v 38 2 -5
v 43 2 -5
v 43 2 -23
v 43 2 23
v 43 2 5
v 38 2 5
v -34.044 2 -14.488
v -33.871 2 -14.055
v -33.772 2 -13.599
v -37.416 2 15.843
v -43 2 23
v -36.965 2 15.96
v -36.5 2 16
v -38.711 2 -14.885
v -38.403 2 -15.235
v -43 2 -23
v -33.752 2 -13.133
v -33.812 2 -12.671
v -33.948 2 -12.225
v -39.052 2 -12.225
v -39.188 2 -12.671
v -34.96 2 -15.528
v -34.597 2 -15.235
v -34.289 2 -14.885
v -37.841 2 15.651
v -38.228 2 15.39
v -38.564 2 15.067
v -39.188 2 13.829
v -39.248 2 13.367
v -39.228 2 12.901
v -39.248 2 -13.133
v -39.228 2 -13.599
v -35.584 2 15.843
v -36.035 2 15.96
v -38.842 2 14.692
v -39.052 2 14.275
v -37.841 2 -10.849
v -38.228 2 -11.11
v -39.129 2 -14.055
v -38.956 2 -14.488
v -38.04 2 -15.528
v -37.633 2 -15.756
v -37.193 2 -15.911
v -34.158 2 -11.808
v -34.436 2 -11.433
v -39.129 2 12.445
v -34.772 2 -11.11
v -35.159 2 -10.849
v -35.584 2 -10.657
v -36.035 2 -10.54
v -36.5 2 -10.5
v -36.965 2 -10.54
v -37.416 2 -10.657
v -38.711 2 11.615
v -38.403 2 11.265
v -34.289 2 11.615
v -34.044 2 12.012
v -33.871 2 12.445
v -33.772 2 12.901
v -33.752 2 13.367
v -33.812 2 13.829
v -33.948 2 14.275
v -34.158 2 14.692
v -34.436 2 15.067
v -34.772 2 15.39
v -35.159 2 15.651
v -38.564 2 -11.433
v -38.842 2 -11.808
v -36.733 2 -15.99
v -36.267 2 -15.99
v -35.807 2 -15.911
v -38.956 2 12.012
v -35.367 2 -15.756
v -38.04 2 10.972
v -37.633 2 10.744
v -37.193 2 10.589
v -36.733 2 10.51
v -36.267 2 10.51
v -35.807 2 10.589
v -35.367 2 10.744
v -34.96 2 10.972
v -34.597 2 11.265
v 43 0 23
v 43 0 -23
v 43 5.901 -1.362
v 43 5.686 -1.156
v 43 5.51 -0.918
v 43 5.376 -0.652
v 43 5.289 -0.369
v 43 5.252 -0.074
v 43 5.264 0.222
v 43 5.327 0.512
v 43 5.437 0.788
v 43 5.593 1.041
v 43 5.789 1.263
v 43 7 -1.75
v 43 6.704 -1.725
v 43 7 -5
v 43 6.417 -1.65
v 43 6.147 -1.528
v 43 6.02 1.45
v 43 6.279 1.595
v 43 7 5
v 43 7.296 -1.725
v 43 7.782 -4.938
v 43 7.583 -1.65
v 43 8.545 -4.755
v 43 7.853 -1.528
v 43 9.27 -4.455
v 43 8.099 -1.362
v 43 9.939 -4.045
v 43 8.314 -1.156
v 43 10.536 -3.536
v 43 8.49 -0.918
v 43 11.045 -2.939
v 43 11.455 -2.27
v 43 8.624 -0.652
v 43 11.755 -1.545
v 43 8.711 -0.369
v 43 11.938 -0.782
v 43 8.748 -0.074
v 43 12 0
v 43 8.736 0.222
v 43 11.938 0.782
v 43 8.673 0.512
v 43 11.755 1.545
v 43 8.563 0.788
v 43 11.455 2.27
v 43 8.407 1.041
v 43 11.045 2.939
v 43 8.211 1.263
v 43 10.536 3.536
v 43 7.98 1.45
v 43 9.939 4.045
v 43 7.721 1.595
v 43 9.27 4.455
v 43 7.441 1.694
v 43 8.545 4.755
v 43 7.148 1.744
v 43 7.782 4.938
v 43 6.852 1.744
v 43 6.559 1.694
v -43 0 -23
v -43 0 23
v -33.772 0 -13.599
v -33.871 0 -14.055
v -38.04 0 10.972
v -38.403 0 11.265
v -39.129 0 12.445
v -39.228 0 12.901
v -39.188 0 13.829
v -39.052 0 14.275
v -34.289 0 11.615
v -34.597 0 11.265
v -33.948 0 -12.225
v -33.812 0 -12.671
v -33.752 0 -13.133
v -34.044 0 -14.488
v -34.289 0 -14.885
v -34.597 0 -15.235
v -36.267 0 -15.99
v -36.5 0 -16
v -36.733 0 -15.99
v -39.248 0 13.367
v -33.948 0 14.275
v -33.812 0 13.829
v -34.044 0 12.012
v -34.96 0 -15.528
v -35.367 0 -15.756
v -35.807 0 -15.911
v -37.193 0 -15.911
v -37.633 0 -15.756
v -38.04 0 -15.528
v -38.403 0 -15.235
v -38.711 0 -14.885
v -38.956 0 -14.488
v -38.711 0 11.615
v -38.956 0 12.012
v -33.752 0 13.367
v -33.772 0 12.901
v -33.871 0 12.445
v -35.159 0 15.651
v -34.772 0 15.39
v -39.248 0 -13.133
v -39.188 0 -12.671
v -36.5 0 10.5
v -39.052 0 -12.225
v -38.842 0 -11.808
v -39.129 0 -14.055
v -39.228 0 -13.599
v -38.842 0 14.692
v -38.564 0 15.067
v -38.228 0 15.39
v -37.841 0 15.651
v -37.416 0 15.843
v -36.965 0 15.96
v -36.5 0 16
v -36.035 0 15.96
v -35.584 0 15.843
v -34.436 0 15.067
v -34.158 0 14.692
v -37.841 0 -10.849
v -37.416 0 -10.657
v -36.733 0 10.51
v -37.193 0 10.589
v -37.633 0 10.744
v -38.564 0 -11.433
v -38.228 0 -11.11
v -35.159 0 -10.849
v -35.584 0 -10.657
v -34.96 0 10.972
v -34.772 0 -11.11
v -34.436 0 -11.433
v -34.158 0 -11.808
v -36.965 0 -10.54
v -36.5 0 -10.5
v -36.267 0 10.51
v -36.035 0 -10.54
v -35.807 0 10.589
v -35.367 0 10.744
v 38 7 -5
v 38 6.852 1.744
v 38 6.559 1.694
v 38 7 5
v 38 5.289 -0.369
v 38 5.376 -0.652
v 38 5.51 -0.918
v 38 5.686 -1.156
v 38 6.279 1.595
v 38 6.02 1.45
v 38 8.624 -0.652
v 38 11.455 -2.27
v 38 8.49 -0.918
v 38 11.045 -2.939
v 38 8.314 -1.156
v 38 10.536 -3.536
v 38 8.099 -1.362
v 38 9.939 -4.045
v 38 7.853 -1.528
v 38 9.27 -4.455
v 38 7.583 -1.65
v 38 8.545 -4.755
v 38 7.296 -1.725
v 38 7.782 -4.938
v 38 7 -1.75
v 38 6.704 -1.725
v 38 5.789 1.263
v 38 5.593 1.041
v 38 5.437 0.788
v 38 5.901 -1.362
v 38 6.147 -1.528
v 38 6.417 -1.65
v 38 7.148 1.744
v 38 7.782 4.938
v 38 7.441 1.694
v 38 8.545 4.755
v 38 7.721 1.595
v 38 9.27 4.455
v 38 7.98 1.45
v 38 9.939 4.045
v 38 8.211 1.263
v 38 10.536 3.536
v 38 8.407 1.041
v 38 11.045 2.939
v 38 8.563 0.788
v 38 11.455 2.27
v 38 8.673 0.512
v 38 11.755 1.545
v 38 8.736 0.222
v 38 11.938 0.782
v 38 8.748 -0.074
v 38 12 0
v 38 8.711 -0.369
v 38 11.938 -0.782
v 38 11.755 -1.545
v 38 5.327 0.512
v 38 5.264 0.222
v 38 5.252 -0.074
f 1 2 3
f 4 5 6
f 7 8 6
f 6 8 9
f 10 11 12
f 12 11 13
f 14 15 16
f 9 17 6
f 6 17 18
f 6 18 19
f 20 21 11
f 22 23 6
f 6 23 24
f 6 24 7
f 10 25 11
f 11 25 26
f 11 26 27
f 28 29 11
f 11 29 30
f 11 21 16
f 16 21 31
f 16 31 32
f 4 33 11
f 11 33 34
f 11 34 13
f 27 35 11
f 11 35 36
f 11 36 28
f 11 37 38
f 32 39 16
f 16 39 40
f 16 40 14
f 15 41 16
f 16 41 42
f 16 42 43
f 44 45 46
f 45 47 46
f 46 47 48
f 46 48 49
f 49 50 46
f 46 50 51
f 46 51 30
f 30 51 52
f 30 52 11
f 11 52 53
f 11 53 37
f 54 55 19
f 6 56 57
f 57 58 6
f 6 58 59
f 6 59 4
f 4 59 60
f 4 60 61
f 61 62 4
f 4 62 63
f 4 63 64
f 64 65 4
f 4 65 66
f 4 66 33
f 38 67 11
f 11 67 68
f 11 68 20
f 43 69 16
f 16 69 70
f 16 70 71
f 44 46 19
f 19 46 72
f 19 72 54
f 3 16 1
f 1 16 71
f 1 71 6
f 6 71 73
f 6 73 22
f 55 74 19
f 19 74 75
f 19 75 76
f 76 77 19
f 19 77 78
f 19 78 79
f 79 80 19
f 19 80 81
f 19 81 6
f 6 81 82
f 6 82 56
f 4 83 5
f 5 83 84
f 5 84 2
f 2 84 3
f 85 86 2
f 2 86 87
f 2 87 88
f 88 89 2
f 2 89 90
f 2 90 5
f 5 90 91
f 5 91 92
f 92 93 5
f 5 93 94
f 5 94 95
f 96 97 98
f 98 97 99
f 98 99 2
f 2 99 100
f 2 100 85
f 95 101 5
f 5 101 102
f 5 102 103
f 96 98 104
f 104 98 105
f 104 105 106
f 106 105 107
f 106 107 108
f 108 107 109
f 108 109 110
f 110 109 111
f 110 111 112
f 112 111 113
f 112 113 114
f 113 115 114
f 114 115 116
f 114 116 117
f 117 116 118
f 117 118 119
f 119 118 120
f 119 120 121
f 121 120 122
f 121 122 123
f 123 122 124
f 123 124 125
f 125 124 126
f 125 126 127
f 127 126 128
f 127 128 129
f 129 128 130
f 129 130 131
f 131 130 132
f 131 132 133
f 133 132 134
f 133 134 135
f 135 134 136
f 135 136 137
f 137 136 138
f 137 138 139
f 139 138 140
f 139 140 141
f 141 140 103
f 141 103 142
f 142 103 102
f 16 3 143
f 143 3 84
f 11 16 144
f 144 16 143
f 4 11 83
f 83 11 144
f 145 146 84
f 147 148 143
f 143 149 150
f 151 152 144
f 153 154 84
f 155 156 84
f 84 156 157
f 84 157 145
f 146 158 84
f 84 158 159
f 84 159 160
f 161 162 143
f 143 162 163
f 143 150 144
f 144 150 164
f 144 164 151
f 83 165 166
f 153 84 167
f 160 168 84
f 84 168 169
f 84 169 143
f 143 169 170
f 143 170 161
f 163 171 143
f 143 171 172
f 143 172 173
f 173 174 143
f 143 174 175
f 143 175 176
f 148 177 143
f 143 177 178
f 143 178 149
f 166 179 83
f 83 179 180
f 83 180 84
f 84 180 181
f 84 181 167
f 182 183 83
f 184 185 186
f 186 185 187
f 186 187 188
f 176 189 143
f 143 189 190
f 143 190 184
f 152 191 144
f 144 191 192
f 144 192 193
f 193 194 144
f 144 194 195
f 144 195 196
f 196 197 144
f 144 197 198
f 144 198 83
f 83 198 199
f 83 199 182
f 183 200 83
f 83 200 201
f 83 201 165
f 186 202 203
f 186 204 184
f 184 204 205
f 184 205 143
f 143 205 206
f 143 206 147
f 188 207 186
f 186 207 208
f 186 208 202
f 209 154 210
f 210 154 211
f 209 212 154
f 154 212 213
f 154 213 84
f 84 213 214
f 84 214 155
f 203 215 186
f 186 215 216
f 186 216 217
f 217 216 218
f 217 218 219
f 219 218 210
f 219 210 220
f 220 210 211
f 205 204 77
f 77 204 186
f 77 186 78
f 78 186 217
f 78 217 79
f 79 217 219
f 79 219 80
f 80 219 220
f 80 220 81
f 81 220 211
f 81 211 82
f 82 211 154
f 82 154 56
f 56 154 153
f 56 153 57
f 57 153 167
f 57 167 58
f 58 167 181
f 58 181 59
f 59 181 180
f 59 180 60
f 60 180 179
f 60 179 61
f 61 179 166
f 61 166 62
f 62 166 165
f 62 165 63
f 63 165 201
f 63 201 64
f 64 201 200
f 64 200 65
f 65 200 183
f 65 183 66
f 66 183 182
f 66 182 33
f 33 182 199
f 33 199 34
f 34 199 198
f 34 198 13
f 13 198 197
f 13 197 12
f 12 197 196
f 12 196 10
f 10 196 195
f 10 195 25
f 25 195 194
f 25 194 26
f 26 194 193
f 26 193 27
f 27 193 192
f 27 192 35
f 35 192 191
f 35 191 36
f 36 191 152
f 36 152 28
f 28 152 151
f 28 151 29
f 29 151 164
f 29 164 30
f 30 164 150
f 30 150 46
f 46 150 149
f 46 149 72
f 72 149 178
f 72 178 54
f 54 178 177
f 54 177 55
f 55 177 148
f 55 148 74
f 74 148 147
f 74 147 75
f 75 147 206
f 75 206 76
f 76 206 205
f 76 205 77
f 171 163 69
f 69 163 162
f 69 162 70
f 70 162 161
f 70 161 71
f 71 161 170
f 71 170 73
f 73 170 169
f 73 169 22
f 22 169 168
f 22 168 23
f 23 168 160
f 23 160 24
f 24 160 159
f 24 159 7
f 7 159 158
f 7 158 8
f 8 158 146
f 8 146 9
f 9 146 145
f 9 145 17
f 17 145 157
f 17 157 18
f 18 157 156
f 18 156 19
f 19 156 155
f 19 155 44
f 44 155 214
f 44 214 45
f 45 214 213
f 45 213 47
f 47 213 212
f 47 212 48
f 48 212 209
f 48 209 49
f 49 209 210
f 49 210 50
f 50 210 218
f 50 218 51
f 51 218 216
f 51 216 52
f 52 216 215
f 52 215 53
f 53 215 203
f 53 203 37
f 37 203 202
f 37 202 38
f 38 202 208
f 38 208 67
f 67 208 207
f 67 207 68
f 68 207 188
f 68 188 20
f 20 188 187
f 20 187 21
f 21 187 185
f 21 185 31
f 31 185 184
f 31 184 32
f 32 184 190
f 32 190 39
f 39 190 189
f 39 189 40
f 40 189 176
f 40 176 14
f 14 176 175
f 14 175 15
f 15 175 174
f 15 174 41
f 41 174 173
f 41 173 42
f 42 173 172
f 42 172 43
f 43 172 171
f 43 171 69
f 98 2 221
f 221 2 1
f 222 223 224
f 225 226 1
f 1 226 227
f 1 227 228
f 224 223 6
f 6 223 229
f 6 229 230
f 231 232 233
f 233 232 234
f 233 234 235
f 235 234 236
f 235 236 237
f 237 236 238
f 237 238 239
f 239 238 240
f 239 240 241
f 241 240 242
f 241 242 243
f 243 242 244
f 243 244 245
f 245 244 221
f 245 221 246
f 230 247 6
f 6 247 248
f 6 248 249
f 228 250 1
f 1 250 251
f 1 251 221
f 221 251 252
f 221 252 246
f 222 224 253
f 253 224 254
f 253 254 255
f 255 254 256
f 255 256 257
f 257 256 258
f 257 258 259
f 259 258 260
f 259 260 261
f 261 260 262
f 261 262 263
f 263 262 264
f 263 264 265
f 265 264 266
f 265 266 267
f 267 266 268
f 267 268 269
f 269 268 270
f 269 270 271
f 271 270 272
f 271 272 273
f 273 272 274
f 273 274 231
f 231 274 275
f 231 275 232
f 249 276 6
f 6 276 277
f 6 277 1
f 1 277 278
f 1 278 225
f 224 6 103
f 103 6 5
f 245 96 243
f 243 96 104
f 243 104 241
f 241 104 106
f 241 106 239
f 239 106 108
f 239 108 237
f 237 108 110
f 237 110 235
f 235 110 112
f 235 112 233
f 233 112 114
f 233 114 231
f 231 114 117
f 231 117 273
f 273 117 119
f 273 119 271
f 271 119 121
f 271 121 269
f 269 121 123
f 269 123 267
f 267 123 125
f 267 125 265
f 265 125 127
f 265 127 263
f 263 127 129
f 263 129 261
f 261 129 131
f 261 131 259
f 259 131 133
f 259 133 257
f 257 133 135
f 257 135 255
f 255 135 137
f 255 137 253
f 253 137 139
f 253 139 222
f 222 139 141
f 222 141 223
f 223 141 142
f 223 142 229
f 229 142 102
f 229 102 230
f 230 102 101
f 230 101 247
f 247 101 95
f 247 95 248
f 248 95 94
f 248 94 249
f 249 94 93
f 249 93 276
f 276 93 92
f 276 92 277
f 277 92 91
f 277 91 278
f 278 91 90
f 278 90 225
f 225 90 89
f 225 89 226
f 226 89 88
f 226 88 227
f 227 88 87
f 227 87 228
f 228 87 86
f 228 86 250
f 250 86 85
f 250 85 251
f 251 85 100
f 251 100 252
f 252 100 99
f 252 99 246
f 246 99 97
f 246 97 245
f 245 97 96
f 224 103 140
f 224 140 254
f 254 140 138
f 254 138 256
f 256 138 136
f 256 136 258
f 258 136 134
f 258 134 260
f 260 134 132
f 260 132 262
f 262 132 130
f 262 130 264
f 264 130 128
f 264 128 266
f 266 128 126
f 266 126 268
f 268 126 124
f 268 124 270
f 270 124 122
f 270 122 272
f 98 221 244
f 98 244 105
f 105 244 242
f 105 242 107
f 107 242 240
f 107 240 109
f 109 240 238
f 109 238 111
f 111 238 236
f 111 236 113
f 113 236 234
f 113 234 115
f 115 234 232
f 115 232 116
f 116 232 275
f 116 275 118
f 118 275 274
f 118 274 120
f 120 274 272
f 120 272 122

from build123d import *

# Parameters (mm, degrees)
SKETCH1_W           = 86
SKETCH1_H           = 46
BOSS_EXTRUDE1_DEPTH = 2
CUT_EXTRUDE1_REACH  = 50.806
SKETCH2_R           = 2.75
SKETCH3_W           = 5
SKETCH3_H           = 10
BOSS_EXTRUDE2_DEPTH = 10
SKETCH4_R           = 1.75
CUT_EXTRUDE2_DEPTH  = 10
FILLET1_R           = 5


with BuildPart() as part:
    # Sketch1 → Boss-Extrude1 (new body)
    with BuildSketch(Plane(origin=(0, 0, 0), x_dir=(1, 0, 0), z_dir=(0, 1, 0))):
        Rectangle(SKETCH1_W, SKETCH1_H)
    extrude(amount=BOSS_EXTRUDE1_DEPTH)

    # Sketch2 → Cut-Extrude1 (cut, up to next)
    with BuildSketch(Plane(origin=(0, 2, 0), x_dir=(1, 0, 0), z_dir=(0, 1, 0)), mode=Mode.PRIVATE) as cut_extrude1_sk1:
        with Locations(Location((-36.5, 13.25, 0), (0, 0, 270))):
            Circle(SKETCH2_R)
    cut_extrude1_tool1 = extrude(cut_extrude1_sk1.sketch, amount=-CUT_EXTRUDE1_REACH, mode=Mode.PRIVATE) & part.part
    # Sketch2 → Cut-Extrude1 (cut, up to next)
    with BuildSketch(Plane(origin=(0, 2, 0), x_dir=(1, 0, 0), z_dir=(0, 1, 0)), mode=Mode.PRIVATE) as cut_extrude1_sk2:
        with Locations(Location((-36.5, -13.25, 0), (0, 0, 270))):
            Circle(SKETCH2_R)
    cut_extrude1_tool2 = extrude(cut_extrude1_sk2.sketch, amount=-CUT_EXTRUDE1_REACH, mode=Mode.PRIVATE) & part.part
    add(cut_extrude1_tool1.solids().sort_by_distance((-36.5, 2, -13.25))[0], mode=Mode.SUBTRACT)
    add(cut_extrude1_tool2.solids().sort_by_distance((-36.5, 2, 13.25))[0], mode=Mode.SUBTRACT)

    # Sketch3 → Boss-Extrude2 (add)
    with BuildSketch(Plane(origin=(0, 2, 0), x_dir=(1, 0, 0), z_dir=(0, 1, 0))):
        with Locations((40.5, 0)):
            Rectangle(SKETCH3_W, SKETCH3_H)
    extrude(amount=BOSS_EXTRUDE2_DEPTH)

    # Sketch4 → Cut-Extrude2 (cut)
    with BuildSketch(Plane(origin=(43, 0, 0), x_dir=(0, 0, -1), z_dir=(1, 0, 0))):
        with Locations((0, 7)):
            Circle(SKETCH4_R)
    extrude(amount=-CUT_EXTRUDE2_DEPTH, mode=Mode.SUBTRACT)

    # Fillet1
    fillet1_edges = [part.edges().sort_by_distance(p)[0] for p in [
        (40.5, 12, -5),
        (40.5, 12, 5),
    ]]
    fillet(fillet1_edges, radius=FILLET1_R - 0.0001)  # a hair under: the kernel refuses the full size


solid = part.part
